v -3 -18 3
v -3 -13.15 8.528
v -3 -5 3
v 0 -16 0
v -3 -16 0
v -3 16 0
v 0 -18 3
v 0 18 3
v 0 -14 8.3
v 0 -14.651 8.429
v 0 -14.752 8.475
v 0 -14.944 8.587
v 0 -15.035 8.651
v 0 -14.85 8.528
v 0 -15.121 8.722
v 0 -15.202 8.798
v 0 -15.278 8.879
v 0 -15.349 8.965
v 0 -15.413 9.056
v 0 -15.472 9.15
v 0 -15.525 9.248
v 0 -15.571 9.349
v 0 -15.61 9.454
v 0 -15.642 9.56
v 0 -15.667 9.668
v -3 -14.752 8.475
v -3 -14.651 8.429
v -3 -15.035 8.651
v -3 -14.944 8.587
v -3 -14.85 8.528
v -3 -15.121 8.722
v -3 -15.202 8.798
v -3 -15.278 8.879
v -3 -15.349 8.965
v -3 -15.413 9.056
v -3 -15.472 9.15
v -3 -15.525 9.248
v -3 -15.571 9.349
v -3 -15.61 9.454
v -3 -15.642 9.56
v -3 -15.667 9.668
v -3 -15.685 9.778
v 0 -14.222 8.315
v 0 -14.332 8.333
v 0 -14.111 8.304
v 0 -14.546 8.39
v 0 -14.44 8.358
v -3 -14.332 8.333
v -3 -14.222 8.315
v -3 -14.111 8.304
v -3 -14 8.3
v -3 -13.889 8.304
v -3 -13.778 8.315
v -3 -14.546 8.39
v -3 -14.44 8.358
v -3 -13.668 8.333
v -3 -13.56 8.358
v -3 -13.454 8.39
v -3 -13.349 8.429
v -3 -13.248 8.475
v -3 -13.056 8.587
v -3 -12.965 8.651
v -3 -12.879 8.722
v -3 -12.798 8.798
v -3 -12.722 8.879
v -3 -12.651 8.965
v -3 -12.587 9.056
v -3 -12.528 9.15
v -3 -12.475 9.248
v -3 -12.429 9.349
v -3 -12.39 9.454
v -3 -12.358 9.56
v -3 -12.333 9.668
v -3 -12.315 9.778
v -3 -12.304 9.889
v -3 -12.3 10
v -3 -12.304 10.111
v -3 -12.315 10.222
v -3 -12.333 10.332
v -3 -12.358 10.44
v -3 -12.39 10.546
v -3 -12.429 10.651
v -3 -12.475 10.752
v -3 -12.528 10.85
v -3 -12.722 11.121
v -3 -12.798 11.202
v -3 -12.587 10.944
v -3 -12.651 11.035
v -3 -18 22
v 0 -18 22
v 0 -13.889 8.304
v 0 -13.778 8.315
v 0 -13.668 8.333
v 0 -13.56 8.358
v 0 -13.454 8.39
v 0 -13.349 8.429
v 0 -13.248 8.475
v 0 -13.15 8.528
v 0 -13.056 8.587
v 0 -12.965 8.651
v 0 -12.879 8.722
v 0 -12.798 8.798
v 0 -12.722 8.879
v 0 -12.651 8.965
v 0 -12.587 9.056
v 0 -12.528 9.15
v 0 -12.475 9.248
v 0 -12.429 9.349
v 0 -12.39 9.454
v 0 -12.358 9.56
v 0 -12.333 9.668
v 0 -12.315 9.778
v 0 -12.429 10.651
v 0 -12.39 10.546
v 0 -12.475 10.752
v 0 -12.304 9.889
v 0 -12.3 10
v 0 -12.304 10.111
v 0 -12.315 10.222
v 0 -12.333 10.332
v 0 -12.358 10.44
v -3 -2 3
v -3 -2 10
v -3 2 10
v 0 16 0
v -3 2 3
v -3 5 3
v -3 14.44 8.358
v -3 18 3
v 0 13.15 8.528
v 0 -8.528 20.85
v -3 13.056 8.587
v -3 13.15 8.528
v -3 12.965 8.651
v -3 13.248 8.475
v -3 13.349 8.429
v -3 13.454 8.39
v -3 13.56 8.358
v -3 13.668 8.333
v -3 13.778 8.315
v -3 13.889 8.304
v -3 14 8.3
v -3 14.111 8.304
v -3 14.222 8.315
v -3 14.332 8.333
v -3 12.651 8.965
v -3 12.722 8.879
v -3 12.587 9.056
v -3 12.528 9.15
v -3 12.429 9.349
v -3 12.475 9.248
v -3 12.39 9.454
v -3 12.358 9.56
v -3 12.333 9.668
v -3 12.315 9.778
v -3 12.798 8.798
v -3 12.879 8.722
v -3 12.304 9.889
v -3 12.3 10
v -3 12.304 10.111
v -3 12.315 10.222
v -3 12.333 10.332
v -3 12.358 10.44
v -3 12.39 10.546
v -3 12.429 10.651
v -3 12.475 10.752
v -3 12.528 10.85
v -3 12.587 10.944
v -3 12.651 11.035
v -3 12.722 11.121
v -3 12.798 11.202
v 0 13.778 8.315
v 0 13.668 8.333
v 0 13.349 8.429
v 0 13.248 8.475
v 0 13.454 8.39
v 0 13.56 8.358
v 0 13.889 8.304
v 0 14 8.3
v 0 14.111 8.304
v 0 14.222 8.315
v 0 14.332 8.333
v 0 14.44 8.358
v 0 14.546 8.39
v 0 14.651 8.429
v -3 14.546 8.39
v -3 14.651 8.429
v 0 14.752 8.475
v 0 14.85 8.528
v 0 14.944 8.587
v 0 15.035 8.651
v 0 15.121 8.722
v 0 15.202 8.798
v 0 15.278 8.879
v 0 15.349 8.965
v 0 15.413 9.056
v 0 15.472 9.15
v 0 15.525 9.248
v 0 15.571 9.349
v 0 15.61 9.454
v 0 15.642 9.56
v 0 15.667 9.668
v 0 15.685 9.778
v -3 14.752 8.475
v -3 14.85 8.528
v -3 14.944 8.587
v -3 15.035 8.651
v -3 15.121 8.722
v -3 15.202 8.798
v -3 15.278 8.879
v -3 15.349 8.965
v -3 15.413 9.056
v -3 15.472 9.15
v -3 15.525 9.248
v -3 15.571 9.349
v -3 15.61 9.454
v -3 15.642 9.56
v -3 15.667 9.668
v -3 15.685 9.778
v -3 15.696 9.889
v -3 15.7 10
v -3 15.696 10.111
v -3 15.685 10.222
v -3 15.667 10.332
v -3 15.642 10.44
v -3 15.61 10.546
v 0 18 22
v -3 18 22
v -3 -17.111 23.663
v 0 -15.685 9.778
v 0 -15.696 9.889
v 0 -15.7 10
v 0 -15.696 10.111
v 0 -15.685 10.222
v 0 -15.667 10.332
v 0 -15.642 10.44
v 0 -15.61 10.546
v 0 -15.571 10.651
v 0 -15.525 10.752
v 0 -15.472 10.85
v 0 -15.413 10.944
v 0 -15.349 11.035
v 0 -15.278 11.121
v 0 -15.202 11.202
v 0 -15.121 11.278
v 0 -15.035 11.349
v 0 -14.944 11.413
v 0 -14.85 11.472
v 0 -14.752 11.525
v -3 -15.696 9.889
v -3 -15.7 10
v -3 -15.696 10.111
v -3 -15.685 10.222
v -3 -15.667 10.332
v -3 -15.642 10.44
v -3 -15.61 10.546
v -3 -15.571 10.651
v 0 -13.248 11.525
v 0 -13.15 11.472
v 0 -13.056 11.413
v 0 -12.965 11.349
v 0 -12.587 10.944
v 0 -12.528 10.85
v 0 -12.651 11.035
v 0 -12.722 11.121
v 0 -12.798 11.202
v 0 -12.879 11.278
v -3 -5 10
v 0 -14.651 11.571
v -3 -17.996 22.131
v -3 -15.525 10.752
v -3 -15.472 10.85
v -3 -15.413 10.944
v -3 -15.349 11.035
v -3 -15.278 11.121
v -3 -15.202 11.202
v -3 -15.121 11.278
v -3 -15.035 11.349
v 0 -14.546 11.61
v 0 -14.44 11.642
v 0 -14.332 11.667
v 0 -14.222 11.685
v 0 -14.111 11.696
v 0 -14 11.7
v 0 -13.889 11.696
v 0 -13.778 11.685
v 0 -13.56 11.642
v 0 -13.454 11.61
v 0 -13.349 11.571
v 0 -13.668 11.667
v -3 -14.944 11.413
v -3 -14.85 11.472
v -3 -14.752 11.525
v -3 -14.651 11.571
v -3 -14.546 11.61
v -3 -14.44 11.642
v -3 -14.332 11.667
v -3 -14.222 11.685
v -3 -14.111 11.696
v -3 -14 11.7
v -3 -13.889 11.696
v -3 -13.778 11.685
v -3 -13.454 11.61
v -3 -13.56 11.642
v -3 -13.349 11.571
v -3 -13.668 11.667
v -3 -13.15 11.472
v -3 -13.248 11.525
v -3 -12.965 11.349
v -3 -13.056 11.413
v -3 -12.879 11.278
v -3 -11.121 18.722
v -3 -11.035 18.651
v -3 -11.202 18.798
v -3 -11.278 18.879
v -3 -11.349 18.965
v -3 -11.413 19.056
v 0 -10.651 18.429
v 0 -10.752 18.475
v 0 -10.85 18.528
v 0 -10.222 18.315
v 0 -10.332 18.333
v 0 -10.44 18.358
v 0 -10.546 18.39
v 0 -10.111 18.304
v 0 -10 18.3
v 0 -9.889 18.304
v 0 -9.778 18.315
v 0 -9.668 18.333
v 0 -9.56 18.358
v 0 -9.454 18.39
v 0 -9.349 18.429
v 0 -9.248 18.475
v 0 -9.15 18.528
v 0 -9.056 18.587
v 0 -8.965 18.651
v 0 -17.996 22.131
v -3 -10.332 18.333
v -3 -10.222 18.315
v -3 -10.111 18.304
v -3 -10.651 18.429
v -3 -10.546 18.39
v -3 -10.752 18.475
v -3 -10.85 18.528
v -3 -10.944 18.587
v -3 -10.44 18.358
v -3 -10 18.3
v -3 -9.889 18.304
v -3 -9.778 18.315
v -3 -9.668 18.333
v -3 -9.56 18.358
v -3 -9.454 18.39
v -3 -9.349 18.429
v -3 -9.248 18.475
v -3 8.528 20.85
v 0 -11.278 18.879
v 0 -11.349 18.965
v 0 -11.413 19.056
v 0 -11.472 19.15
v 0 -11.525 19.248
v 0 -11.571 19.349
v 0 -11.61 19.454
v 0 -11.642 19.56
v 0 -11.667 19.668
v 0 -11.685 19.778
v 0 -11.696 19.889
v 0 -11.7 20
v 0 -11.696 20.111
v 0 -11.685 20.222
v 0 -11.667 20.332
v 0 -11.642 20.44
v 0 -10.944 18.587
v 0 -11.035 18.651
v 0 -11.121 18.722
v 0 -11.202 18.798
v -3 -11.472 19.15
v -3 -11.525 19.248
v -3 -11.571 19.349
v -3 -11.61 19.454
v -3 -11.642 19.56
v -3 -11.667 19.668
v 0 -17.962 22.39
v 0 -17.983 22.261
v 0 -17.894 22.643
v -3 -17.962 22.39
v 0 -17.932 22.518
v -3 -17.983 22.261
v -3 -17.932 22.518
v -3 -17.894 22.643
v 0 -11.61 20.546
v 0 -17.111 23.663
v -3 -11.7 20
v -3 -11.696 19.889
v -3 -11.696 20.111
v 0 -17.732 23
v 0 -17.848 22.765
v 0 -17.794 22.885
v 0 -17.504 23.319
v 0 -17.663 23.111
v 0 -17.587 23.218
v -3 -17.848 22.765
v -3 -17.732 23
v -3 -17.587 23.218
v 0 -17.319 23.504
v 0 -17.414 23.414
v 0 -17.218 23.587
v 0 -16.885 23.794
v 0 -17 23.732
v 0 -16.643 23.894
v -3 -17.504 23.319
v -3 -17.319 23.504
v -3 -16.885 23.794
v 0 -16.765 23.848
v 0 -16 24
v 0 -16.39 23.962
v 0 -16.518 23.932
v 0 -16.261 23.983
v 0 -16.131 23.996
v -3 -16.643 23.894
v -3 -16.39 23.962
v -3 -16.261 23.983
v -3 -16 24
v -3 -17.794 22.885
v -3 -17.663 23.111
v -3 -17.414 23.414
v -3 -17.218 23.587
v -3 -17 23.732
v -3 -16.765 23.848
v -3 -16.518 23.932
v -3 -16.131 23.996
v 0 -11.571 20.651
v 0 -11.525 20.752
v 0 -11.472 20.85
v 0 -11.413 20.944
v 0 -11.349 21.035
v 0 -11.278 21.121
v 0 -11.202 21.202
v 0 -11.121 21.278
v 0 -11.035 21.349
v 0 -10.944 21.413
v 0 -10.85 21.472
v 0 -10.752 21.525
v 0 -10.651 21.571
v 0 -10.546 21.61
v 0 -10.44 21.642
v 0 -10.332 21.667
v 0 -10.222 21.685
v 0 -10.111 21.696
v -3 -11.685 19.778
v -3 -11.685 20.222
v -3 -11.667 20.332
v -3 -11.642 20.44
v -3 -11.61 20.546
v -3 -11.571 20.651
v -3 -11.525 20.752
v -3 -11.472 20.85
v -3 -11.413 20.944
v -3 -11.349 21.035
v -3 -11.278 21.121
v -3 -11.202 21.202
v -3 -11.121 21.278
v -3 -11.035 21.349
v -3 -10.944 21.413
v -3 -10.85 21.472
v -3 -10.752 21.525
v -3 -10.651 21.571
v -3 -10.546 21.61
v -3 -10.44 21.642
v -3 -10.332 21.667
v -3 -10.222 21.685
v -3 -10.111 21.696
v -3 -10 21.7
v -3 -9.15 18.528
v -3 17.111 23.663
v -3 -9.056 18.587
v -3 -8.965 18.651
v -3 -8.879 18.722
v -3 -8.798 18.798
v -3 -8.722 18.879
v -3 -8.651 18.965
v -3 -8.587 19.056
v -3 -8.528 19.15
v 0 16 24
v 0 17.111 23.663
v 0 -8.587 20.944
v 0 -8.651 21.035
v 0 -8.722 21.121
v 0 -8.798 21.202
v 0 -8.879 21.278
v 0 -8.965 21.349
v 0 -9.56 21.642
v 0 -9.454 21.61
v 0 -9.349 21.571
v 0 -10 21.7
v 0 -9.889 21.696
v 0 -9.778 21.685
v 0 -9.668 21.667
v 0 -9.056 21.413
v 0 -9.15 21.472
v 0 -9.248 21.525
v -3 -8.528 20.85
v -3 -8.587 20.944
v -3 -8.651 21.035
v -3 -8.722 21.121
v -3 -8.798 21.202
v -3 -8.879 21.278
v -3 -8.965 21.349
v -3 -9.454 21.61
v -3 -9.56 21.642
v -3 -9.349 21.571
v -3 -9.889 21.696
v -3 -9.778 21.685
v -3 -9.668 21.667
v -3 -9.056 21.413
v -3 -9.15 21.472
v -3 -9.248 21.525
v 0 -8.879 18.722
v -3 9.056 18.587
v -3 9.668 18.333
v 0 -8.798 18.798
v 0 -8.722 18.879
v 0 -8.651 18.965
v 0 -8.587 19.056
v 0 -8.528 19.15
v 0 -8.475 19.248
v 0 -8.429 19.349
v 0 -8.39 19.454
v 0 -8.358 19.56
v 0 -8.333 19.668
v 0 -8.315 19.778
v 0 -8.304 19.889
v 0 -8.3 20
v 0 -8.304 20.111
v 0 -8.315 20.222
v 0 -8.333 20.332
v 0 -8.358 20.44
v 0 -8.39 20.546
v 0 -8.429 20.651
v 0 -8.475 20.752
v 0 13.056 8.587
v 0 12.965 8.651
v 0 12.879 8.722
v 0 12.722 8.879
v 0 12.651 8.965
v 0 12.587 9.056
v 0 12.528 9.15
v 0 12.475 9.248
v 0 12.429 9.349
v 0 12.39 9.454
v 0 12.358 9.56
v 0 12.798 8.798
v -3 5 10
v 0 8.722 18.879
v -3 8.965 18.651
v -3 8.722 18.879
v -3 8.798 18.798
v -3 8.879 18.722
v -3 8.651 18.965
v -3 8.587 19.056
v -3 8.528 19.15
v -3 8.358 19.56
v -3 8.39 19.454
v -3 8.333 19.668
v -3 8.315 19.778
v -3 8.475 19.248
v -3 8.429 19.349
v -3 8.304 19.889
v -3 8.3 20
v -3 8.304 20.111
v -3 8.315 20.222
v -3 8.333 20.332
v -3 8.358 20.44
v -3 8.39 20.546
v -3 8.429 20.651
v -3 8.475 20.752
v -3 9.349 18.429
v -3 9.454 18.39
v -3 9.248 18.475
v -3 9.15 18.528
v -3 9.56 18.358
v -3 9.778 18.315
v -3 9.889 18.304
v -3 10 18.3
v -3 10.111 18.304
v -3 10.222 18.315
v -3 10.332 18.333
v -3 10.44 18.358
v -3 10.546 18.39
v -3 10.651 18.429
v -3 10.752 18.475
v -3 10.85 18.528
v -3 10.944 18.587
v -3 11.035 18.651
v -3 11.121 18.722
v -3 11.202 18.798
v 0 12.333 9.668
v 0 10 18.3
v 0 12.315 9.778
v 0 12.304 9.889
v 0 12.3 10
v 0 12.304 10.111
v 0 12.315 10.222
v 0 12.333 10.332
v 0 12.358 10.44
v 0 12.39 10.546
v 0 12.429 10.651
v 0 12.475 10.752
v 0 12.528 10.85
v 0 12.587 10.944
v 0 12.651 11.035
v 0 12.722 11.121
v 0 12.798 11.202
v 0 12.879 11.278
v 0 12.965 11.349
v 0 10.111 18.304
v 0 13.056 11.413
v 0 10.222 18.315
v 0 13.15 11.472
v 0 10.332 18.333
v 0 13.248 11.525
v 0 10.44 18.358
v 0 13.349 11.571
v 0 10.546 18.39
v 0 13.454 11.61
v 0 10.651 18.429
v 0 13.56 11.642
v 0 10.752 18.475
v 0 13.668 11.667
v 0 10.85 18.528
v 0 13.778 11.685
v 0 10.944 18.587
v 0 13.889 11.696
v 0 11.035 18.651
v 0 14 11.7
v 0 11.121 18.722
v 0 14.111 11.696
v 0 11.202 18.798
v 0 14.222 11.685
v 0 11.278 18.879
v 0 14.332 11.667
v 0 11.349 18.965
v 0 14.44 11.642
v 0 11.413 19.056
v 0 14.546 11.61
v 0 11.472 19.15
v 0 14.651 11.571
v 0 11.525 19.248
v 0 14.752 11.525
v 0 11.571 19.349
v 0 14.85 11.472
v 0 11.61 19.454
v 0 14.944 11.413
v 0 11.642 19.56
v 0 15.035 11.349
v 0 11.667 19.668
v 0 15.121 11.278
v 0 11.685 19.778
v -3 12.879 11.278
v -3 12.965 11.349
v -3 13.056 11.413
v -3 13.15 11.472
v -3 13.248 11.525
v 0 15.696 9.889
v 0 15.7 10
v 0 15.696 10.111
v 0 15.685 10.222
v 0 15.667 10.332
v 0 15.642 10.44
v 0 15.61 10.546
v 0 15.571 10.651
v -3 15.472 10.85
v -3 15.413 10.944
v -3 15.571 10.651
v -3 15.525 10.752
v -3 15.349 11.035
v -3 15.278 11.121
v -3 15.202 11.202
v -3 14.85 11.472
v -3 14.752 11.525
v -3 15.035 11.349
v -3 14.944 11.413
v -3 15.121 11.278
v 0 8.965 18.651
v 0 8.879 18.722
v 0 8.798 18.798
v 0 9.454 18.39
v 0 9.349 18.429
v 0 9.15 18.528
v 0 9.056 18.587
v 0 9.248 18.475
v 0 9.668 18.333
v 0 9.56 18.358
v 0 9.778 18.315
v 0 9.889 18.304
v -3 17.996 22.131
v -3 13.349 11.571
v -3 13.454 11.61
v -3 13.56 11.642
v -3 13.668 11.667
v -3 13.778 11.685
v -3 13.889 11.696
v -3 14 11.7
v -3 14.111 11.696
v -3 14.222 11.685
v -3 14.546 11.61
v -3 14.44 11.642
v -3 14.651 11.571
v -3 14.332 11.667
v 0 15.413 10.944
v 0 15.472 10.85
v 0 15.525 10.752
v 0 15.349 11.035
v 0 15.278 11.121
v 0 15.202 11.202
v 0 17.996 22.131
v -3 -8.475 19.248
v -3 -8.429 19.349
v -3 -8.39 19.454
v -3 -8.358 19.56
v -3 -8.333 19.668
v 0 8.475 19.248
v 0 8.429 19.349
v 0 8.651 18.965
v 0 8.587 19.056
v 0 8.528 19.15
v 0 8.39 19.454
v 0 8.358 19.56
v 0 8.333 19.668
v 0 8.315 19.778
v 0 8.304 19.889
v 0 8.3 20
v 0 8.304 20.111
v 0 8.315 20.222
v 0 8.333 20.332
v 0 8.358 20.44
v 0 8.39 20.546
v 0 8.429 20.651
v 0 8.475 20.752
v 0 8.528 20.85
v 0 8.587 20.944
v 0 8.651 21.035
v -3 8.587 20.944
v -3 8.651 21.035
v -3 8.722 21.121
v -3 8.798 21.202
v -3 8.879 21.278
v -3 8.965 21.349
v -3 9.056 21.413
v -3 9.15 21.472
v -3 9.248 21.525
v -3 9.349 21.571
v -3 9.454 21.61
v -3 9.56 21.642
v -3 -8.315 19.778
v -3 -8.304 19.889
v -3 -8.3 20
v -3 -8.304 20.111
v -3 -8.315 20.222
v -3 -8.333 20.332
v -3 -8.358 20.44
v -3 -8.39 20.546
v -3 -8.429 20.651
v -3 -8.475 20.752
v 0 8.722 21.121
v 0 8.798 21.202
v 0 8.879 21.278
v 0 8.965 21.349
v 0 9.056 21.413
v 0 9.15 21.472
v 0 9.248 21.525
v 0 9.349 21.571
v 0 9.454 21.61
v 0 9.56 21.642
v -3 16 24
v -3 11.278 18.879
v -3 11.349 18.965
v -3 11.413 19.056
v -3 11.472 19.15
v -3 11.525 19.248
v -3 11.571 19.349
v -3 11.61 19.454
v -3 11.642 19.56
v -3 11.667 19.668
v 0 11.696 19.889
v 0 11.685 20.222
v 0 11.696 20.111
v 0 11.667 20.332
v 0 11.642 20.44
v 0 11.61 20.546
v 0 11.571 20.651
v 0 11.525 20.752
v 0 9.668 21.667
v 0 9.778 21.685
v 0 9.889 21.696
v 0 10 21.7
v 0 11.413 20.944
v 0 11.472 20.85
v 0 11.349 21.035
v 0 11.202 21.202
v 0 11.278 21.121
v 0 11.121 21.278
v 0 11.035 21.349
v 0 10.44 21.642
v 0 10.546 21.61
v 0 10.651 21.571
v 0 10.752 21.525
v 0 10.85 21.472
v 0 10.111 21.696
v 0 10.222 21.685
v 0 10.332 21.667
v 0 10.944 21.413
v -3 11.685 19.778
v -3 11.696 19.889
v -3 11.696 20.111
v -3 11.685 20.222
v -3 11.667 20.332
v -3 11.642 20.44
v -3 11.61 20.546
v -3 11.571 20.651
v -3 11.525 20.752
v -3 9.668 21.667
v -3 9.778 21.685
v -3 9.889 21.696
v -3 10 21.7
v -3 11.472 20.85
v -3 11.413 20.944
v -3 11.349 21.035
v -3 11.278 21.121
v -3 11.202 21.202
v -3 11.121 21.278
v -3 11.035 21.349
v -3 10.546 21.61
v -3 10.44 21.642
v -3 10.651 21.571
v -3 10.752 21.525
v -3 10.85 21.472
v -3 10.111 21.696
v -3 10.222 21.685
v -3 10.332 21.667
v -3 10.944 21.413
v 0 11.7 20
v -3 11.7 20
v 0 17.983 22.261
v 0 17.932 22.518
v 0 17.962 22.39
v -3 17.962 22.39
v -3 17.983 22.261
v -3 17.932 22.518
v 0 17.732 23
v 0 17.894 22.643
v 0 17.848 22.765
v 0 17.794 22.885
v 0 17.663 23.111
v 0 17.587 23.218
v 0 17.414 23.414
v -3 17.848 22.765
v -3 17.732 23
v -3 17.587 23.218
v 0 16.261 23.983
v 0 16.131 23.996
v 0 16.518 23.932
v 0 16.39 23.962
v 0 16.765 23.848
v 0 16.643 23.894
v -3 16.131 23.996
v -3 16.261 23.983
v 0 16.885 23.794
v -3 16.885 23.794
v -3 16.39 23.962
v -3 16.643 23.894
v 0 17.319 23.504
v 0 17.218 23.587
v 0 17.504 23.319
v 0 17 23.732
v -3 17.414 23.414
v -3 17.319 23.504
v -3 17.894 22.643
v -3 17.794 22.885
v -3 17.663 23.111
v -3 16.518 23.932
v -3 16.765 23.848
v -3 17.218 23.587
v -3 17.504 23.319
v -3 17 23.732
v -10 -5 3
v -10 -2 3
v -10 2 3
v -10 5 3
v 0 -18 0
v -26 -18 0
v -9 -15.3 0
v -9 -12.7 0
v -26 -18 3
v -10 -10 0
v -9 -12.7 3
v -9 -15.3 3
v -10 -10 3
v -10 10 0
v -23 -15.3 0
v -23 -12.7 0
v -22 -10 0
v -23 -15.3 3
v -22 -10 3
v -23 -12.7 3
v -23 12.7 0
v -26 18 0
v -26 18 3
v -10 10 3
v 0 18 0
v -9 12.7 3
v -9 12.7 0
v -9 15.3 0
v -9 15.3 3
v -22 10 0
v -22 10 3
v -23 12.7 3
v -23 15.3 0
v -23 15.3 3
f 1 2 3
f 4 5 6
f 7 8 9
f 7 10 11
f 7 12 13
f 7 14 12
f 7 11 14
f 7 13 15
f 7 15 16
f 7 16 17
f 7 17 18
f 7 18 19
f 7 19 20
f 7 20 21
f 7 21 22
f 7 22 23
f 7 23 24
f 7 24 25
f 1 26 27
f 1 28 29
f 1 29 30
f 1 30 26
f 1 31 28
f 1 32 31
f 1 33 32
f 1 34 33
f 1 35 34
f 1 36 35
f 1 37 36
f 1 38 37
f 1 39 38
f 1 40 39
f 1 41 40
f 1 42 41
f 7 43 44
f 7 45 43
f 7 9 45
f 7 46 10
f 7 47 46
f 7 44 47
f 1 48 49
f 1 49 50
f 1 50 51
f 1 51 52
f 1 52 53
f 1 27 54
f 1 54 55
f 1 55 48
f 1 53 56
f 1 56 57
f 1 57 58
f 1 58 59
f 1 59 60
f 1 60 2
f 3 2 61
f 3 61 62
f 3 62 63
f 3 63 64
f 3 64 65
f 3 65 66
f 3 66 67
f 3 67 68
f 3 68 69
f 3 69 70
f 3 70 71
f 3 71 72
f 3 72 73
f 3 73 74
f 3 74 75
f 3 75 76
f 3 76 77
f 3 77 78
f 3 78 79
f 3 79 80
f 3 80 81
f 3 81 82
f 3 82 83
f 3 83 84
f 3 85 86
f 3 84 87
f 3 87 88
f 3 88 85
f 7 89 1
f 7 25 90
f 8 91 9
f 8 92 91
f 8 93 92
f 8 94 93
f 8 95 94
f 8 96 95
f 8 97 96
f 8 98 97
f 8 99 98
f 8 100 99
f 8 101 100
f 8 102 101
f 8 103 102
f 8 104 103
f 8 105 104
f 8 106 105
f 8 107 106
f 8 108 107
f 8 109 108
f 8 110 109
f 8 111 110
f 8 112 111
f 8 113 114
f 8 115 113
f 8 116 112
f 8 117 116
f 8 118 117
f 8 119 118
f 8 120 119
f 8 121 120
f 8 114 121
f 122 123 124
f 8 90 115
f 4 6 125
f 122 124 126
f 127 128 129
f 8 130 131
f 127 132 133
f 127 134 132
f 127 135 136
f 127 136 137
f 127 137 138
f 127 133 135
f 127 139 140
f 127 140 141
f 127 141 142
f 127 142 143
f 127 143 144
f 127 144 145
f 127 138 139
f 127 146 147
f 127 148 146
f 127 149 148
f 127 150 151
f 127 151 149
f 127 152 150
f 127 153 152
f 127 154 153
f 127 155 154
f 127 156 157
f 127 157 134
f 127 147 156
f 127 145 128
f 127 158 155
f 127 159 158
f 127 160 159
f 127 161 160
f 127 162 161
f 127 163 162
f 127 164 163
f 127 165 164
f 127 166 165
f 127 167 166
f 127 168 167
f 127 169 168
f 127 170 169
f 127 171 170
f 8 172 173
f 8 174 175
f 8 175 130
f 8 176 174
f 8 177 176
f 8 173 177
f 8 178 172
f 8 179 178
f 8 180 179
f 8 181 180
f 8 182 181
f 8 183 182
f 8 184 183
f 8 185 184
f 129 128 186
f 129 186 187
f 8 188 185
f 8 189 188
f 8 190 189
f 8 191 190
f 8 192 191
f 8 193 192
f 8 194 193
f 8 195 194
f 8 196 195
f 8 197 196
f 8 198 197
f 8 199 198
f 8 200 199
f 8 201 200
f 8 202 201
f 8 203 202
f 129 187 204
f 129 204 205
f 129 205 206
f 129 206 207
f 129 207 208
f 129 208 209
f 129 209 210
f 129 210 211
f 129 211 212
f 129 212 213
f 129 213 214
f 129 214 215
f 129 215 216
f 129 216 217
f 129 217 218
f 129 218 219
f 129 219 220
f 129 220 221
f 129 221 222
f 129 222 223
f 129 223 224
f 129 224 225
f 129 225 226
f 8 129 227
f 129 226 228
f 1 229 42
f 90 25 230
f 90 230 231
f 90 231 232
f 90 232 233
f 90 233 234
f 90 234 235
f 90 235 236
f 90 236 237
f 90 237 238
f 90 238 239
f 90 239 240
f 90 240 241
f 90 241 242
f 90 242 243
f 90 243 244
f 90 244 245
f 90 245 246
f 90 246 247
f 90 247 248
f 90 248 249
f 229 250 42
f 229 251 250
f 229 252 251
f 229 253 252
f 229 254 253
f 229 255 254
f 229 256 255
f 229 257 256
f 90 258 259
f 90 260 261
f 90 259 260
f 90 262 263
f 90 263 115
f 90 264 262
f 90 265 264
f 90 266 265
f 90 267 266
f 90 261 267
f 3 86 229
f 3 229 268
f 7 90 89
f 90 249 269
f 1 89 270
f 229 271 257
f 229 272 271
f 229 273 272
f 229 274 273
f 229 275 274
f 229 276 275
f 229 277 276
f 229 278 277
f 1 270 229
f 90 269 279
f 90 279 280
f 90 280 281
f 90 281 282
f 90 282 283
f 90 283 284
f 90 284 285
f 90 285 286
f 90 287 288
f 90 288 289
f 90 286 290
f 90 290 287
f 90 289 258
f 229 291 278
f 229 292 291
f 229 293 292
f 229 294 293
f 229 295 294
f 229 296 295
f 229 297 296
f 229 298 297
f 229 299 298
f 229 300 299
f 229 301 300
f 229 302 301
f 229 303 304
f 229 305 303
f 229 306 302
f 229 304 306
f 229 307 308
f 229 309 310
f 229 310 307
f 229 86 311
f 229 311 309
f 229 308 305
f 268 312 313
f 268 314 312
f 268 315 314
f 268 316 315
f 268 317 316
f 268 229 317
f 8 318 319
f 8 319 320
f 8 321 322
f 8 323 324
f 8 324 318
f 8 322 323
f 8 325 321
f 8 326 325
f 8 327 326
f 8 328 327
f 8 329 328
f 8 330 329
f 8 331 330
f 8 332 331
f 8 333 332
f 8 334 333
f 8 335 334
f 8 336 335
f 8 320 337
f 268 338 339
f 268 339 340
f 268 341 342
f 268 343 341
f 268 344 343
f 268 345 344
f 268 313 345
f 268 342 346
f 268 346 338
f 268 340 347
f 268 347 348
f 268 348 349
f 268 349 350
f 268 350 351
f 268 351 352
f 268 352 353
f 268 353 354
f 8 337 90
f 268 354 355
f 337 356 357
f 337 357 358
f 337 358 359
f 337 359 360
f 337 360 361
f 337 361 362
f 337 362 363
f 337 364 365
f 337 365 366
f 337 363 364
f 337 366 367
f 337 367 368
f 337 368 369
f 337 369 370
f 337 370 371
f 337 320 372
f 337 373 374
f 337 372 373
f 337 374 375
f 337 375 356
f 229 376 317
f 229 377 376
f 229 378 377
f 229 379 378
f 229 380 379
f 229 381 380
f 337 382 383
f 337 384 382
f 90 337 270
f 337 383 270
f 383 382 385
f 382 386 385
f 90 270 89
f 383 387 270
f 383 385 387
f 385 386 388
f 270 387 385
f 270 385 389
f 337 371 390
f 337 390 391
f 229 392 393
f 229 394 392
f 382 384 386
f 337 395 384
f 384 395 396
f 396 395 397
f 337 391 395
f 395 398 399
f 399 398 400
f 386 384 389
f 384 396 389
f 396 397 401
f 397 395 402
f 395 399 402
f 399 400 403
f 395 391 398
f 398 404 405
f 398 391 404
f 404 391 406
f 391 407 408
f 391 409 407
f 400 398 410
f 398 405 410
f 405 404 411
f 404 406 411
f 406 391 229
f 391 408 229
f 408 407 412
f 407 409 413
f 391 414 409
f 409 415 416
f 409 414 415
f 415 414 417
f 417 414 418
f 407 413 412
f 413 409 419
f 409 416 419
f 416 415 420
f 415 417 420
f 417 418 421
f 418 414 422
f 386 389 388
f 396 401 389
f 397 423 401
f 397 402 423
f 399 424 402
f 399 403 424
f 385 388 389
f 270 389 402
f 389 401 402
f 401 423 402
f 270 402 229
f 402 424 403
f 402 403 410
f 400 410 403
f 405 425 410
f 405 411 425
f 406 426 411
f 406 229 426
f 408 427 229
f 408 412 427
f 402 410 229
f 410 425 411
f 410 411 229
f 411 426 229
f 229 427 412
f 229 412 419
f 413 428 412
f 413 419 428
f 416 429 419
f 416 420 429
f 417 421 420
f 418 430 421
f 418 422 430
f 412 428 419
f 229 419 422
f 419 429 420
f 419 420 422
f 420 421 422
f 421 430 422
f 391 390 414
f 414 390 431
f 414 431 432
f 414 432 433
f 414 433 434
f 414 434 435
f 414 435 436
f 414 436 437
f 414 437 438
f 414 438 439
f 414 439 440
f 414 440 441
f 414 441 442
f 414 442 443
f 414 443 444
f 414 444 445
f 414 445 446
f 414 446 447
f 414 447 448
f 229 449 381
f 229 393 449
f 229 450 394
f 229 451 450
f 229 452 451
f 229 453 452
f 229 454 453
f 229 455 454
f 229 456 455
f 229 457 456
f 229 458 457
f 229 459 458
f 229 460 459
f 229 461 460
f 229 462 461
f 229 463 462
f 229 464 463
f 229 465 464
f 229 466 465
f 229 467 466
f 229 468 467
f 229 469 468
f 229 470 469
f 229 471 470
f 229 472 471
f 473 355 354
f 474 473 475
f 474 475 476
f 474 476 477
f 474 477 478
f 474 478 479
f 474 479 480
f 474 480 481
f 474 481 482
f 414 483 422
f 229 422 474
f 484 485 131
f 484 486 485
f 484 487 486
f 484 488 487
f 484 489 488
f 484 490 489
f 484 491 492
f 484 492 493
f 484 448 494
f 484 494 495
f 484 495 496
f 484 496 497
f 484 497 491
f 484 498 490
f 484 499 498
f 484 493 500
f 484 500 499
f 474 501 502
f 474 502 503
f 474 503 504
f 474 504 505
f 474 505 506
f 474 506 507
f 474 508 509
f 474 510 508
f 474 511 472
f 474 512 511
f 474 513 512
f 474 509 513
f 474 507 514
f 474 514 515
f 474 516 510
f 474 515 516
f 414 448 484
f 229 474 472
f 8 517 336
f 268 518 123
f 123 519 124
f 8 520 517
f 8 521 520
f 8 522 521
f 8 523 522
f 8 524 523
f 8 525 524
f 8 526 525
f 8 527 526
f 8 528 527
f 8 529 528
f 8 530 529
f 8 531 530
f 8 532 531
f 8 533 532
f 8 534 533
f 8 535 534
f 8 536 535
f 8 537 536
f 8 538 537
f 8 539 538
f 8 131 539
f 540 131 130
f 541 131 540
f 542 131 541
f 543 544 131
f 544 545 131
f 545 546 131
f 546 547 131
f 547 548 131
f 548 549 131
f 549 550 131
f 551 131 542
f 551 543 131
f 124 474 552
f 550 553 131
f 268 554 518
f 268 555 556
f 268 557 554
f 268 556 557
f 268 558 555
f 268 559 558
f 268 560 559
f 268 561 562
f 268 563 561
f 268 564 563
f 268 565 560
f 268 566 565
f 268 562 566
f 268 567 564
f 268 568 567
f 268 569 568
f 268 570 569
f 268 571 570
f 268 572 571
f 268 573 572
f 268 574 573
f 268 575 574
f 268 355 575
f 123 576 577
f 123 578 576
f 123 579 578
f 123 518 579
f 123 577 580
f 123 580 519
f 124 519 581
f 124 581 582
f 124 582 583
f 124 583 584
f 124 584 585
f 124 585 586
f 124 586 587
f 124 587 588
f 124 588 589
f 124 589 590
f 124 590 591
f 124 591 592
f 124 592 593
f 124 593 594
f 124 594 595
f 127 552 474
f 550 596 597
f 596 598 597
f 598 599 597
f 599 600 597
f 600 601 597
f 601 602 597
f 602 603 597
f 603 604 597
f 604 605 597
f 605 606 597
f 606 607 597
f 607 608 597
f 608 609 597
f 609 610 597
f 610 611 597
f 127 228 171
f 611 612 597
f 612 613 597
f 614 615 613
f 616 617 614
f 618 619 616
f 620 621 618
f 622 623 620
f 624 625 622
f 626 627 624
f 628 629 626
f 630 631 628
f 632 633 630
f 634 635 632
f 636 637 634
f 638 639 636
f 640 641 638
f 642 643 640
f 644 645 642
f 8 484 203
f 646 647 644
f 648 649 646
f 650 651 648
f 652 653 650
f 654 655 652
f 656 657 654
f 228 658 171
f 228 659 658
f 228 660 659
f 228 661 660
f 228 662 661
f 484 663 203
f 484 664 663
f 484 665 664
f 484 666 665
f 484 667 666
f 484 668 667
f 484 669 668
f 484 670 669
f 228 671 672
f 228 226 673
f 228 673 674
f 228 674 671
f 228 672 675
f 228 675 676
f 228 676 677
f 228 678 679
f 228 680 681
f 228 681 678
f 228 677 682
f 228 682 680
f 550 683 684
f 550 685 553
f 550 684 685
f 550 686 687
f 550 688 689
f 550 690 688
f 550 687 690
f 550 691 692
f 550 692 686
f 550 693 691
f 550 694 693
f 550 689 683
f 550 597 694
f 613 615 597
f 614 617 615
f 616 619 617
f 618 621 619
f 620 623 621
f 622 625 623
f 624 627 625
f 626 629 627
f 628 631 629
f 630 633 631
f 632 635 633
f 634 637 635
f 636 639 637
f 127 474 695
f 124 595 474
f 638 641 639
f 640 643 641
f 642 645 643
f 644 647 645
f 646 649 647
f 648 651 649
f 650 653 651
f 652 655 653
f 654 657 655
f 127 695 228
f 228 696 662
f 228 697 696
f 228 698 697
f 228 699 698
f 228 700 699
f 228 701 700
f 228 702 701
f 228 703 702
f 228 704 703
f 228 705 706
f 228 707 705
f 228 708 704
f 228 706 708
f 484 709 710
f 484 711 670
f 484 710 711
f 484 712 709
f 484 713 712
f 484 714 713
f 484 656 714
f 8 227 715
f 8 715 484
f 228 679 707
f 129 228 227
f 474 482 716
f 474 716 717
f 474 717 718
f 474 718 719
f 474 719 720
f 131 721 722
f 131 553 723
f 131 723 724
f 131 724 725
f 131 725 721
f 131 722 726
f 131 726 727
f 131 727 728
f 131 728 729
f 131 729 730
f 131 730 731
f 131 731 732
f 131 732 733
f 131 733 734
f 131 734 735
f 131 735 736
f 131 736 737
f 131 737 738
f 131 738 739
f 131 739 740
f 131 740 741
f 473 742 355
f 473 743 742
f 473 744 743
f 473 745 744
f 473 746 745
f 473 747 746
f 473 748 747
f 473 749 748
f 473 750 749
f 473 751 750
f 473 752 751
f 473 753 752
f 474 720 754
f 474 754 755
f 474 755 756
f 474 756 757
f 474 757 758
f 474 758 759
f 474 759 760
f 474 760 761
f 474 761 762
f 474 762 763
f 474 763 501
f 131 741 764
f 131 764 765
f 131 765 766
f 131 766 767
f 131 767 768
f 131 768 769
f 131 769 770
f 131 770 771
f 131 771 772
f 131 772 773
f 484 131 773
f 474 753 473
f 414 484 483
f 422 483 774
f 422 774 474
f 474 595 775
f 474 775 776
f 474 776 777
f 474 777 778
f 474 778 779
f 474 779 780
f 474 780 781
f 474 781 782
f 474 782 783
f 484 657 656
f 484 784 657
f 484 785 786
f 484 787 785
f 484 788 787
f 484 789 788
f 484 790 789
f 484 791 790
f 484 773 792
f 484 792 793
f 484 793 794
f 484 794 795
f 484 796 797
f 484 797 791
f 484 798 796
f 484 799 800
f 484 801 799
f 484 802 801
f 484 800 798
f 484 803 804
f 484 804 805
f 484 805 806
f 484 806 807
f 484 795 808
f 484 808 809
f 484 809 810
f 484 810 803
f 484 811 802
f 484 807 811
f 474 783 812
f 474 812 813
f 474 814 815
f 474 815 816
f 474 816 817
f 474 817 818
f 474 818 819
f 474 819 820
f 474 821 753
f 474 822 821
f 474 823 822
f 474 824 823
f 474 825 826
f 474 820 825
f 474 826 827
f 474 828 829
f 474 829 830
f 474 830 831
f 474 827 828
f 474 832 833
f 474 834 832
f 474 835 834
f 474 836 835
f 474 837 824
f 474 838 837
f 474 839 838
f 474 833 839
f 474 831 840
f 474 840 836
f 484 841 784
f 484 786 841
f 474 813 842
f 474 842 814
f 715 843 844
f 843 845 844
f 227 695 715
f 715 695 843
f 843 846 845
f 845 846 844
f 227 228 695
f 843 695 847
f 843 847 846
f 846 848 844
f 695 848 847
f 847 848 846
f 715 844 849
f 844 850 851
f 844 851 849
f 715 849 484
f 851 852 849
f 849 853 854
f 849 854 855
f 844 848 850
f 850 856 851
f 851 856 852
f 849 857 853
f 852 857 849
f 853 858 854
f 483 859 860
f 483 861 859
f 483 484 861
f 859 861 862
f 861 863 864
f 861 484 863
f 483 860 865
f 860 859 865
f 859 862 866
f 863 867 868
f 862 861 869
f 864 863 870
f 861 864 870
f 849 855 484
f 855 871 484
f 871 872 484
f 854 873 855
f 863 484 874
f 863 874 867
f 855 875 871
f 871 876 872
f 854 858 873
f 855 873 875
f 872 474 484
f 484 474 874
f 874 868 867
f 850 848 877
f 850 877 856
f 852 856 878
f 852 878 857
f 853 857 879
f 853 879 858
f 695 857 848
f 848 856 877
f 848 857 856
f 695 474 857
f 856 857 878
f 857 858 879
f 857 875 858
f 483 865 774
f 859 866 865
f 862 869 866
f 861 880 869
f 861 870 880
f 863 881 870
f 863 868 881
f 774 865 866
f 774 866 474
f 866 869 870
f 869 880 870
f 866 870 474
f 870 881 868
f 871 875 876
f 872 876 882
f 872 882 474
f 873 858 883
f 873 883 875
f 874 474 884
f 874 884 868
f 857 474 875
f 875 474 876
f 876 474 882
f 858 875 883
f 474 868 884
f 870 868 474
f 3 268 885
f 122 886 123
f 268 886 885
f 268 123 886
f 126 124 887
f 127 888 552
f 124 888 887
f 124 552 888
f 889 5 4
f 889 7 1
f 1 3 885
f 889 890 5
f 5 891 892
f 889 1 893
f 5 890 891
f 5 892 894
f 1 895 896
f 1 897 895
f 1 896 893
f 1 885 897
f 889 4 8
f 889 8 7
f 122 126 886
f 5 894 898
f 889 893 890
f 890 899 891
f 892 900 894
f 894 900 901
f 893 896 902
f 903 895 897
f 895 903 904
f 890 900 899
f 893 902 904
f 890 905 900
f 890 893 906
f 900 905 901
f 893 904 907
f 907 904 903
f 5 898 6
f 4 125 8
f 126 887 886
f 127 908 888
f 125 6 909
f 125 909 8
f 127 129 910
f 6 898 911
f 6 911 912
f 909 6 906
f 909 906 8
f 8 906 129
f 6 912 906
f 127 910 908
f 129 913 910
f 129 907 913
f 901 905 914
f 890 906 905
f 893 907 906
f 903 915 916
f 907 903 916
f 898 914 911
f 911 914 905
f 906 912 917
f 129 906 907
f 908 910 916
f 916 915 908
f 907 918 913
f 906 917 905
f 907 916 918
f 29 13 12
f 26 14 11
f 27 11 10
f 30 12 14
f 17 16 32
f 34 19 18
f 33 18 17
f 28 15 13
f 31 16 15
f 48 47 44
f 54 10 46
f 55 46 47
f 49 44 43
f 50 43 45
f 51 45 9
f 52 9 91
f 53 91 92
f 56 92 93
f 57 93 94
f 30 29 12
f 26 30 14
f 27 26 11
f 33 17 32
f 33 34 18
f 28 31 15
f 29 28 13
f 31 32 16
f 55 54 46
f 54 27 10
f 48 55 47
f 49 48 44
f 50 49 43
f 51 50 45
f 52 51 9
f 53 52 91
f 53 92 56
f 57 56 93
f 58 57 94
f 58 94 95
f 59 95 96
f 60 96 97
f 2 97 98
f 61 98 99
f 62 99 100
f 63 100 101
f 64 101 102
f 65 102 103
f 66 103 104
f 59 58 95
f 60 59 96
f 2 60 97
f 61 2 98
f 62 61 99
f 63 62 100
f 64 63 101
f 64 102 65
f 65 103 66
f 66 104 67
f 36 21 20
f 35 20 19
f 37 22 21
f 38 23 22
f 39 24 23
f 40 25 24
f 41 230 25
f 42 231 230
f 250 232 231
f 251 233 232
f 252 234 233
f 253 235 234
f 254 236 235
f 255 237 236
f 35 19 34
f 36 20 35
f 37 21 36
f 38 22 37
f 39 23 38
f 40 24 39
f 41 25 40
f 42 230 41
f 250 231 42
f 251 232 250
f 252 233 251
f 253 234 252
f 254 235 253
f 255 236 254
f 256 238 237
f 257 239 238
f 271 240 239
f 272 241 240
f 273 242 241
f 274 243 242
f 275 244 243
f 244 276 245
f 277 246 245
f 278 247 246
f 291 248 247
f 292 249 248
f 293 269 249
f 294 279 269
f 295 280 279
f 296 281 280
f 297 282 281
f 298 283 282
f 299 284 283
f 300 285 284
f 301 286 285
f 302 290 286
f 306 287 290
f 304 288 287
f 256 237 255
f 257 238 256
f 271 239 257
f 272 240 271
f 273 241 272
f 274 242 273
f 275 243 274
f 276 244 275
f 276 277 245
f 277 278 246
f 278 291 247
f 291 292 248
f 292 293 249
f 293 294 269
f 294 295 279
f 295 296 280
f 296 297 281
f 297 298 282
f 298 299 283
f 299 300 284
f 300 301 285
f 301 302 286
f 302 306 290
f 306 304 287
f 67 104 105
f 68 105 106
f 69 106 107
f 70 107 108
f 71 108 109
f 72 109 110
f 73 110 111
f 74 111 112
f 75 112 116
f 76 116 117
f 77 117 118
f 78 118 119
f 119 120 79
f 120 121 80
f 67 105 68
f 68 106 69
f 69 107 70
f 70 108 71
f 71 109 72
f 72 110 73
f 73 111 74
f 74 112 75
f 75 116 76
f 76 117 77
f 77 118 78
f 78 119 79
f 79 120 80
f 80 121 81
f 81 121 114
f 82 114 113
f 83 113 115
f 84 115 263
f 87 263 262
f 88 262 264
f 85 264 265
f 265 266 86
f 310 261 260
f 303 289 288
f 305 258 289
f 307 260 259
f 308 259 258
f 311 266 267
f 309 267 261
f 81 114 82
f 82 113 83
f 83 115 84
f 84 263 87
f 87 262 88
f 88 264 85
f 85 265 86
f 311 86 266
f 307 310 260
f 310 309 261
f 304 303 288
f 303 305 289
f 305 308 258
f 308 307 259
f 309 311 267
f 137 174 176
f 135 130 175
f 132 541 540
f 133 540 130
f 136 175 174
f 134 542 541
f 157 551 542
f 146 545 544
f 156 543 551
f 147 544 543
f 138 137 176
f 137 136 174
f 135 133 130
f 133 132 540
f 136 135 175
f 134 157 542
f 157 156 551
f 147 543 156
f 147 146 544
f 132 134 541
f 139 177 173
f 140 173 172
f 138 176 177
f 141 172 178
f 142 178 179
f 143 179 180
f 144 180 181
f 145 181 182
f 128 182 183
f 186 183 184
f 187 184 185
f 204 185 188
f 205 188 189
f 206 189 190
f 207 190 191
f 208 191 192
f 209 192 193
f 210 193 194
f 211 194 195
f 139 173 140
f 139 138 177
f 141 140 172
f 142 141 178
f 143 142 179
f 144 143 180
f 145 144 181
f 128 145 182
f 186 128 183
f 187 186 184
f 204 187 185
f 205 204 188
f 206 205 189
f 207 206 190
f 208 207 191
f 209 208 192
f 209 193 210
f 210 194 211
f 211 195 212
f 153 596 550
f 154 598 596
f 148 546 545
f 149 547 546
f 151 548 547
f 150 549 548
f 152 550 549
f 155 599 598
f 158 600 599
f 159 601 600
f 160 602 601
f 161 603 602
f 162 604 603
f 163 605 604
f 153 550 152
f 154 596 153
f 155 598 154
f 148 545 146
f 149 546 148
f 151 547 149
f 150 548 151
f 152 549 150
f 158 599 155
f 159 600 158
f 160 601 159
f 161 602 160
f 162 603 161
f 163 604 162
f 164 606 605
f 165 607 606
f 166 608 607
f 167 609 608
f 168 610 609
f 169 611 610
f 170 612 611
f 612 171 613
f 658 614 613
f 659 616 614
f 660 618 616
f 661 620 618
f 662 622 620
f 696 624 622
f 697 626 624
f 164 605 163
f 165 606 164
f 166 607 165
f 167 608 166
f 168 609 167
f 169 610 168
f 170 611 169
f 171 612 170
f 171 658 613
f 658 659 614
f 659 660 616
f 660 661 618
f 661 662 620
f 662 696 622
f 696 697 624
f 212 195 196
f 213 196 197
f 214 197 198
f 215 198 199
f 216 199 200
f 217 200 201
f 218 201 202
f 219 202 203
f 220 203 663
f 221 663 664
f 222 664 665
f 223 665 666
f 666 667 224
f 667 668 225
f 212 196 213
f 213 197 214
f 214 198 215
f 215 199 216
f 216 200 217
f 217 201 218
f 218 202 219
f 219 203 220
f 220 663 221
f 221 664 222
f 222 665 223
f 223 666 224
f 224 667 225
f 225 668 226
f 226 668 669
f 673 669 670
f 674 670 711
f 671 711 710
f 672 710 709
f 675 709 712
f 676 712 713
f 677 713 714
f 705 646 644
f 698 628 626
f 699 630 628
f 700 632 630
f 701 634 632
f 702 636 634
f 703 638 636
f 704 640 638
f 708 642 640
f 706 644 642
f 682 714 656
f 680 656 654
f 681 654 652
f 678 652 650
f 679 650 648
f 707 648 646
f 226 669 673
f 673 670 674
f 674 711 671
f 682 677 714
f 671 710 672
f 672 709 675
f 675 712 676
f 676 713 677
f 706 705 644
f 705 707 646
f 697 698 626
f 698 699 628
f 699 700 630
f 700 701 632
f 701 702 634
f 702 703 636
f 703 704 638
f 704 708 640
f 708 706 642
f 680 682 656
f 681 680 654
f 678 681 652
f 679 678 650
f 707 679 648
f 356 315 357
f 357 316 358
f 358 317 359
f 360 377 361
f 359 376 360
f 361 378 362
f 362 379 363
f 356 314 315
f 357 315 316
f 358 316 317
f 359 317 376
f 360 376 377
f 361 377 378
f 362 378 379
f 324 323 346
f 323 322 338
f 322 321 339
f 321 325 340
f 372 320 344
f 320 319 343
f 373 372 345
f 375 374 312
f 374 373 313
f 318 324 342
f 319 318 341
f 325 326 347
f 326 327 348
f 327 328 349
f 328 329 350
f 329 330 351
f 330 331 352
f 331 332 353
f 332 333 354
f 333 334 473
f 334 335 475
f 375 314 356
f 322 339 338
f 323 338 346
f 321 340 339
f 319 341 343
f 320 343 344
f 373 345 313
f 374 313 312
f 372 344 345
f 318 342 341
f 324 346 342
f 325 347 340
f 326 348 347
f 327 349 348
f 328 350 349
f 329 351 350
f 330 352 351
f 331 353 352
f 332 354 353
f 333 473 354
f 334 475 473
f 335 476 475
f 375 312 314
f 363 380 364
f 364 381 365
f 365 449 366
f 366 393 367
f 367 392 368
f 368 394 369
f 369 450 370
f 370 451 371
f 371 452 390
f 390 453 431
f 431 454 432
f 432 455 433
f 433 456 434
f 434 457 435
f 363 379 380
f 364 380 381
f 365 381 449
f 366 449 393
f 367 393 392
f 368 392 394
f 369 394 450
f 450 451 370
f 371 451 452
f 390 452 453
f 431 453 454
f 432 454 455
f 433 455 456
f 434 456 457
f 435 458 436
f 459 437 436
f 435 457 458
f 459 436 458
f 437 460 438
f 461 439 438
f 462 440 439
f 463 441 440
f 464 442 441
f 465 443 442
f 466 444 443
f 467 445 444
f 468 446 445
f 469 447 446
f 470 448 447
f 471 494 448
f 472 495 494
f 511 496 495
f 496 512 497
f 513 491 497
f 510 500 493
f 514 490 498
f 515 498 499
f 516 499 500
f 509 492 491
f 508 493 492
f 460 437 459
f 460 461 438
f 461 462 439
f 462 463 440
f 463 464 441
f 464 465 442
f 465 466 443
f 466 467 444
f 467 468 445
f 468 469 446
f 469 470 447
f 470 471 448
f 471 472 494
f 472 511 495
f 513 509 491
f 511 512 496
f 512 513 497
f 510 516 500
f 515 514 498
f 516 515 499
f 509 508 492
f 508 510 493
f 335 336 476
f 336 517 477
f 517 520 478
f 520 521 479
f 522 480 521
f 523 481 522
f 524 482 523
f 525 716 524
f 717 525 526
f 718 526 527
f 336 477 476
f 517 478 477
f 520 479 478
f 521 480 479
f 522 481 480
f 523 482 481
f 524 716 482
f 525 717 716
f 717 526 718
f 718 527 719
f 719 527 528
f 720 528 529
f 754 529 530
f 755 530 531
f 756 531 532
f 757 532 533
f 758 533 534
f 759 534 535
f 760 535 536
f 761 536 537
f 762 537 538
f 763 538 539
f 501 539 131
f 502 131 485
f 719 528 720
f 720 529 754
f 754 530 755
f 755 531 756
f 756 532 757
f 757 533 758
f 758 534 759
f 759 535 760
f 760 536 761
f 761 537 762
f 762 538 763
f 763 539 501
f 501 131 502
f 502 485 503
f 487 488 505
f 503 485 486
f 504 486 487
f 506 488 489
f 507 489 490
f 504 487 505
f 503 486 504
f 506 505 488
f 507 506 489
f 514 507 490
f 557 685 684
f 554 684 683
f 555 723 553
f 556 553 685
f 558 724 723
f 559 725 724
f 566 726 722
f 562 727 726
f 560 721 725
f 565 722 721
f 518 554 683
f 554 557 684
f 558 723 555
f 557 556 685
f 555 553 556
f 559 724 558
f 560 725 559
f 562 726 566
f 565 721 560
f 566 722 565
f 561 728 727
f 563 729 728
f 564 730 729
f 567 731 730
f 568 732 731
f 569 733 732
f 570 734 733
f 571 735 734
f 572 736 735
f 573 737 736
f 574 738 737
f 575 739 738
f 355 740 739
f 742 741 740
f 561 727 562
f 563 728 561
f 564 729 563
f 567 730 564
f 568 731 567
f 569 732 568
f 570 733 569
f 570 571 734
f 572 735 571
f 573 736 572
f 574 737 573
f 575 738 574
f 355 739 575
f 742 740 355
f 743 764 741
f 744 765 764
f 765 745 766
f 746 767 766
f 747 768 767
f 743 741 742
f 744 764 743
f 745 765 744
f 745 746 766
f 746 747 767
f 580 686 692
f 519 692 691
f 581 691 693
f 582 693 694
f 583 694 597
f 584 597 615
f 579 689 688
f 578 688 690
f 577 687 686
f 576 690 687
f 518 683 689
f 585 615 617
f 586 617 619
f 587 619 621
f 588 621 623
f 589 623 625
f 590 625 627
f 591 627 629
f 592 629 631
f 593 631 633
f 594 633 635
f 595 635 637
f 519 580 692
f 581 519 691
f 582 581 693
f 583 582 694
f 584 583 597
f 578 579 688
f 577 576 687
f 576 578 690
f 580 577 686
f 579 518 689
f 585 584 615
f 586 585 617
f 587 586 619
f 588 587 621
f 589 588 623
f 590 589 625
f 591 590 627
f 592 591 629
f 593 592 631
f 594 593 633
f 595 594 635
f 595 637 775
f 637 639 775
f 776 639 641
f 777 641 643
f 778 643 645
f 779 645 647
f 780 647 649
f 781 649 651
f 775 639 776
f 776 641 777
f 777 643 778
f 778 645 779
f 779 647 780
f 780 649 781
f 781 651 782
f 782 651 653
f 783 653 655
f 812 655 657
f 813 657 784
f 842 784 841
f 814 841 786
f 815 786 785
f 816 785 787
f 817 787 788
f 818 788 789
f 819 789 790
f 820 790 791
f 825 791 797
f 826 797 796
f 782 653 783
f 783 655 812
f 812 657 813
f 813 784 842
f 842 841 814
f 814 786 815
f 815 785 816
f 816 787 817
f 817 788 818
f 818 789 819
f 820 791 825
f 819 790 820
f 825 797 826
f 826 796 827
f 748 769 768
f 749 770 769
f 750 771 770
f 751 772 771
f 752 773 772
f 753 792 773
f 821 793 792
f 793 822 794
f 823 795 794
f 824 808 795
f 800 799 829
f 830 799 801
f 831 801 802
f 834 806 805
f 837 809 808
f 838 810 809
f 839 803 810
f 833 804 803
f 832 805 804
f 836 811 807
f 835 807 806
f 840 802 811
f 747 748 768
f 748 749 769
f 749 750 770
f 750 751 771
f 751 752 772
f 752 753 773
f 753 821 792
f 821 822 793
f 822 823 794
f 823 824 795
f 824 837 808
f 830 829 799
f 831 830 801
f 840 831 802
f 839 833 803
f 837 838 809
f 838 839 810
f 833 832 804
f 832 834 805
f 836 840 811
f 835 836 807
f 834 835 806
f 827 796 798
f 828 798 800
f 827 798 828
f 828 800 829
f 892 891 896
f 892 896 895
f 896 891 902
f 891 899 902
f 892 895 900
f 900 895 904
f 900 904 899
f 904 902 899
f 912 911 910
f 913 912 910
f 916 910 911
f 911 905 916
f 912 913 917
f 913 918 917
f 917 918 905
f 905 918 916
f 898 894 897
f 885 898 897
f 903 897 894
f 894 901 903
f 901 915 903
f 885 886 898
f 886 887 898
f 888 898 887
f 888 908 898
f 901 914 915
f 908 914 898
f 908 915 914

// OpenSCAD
// Units: mm. Generic prototype; read ../audit/CAD_AUDIT.md.
$fn=96;
use <../cute_rover_complete.scad>;
camera_mount_print();
